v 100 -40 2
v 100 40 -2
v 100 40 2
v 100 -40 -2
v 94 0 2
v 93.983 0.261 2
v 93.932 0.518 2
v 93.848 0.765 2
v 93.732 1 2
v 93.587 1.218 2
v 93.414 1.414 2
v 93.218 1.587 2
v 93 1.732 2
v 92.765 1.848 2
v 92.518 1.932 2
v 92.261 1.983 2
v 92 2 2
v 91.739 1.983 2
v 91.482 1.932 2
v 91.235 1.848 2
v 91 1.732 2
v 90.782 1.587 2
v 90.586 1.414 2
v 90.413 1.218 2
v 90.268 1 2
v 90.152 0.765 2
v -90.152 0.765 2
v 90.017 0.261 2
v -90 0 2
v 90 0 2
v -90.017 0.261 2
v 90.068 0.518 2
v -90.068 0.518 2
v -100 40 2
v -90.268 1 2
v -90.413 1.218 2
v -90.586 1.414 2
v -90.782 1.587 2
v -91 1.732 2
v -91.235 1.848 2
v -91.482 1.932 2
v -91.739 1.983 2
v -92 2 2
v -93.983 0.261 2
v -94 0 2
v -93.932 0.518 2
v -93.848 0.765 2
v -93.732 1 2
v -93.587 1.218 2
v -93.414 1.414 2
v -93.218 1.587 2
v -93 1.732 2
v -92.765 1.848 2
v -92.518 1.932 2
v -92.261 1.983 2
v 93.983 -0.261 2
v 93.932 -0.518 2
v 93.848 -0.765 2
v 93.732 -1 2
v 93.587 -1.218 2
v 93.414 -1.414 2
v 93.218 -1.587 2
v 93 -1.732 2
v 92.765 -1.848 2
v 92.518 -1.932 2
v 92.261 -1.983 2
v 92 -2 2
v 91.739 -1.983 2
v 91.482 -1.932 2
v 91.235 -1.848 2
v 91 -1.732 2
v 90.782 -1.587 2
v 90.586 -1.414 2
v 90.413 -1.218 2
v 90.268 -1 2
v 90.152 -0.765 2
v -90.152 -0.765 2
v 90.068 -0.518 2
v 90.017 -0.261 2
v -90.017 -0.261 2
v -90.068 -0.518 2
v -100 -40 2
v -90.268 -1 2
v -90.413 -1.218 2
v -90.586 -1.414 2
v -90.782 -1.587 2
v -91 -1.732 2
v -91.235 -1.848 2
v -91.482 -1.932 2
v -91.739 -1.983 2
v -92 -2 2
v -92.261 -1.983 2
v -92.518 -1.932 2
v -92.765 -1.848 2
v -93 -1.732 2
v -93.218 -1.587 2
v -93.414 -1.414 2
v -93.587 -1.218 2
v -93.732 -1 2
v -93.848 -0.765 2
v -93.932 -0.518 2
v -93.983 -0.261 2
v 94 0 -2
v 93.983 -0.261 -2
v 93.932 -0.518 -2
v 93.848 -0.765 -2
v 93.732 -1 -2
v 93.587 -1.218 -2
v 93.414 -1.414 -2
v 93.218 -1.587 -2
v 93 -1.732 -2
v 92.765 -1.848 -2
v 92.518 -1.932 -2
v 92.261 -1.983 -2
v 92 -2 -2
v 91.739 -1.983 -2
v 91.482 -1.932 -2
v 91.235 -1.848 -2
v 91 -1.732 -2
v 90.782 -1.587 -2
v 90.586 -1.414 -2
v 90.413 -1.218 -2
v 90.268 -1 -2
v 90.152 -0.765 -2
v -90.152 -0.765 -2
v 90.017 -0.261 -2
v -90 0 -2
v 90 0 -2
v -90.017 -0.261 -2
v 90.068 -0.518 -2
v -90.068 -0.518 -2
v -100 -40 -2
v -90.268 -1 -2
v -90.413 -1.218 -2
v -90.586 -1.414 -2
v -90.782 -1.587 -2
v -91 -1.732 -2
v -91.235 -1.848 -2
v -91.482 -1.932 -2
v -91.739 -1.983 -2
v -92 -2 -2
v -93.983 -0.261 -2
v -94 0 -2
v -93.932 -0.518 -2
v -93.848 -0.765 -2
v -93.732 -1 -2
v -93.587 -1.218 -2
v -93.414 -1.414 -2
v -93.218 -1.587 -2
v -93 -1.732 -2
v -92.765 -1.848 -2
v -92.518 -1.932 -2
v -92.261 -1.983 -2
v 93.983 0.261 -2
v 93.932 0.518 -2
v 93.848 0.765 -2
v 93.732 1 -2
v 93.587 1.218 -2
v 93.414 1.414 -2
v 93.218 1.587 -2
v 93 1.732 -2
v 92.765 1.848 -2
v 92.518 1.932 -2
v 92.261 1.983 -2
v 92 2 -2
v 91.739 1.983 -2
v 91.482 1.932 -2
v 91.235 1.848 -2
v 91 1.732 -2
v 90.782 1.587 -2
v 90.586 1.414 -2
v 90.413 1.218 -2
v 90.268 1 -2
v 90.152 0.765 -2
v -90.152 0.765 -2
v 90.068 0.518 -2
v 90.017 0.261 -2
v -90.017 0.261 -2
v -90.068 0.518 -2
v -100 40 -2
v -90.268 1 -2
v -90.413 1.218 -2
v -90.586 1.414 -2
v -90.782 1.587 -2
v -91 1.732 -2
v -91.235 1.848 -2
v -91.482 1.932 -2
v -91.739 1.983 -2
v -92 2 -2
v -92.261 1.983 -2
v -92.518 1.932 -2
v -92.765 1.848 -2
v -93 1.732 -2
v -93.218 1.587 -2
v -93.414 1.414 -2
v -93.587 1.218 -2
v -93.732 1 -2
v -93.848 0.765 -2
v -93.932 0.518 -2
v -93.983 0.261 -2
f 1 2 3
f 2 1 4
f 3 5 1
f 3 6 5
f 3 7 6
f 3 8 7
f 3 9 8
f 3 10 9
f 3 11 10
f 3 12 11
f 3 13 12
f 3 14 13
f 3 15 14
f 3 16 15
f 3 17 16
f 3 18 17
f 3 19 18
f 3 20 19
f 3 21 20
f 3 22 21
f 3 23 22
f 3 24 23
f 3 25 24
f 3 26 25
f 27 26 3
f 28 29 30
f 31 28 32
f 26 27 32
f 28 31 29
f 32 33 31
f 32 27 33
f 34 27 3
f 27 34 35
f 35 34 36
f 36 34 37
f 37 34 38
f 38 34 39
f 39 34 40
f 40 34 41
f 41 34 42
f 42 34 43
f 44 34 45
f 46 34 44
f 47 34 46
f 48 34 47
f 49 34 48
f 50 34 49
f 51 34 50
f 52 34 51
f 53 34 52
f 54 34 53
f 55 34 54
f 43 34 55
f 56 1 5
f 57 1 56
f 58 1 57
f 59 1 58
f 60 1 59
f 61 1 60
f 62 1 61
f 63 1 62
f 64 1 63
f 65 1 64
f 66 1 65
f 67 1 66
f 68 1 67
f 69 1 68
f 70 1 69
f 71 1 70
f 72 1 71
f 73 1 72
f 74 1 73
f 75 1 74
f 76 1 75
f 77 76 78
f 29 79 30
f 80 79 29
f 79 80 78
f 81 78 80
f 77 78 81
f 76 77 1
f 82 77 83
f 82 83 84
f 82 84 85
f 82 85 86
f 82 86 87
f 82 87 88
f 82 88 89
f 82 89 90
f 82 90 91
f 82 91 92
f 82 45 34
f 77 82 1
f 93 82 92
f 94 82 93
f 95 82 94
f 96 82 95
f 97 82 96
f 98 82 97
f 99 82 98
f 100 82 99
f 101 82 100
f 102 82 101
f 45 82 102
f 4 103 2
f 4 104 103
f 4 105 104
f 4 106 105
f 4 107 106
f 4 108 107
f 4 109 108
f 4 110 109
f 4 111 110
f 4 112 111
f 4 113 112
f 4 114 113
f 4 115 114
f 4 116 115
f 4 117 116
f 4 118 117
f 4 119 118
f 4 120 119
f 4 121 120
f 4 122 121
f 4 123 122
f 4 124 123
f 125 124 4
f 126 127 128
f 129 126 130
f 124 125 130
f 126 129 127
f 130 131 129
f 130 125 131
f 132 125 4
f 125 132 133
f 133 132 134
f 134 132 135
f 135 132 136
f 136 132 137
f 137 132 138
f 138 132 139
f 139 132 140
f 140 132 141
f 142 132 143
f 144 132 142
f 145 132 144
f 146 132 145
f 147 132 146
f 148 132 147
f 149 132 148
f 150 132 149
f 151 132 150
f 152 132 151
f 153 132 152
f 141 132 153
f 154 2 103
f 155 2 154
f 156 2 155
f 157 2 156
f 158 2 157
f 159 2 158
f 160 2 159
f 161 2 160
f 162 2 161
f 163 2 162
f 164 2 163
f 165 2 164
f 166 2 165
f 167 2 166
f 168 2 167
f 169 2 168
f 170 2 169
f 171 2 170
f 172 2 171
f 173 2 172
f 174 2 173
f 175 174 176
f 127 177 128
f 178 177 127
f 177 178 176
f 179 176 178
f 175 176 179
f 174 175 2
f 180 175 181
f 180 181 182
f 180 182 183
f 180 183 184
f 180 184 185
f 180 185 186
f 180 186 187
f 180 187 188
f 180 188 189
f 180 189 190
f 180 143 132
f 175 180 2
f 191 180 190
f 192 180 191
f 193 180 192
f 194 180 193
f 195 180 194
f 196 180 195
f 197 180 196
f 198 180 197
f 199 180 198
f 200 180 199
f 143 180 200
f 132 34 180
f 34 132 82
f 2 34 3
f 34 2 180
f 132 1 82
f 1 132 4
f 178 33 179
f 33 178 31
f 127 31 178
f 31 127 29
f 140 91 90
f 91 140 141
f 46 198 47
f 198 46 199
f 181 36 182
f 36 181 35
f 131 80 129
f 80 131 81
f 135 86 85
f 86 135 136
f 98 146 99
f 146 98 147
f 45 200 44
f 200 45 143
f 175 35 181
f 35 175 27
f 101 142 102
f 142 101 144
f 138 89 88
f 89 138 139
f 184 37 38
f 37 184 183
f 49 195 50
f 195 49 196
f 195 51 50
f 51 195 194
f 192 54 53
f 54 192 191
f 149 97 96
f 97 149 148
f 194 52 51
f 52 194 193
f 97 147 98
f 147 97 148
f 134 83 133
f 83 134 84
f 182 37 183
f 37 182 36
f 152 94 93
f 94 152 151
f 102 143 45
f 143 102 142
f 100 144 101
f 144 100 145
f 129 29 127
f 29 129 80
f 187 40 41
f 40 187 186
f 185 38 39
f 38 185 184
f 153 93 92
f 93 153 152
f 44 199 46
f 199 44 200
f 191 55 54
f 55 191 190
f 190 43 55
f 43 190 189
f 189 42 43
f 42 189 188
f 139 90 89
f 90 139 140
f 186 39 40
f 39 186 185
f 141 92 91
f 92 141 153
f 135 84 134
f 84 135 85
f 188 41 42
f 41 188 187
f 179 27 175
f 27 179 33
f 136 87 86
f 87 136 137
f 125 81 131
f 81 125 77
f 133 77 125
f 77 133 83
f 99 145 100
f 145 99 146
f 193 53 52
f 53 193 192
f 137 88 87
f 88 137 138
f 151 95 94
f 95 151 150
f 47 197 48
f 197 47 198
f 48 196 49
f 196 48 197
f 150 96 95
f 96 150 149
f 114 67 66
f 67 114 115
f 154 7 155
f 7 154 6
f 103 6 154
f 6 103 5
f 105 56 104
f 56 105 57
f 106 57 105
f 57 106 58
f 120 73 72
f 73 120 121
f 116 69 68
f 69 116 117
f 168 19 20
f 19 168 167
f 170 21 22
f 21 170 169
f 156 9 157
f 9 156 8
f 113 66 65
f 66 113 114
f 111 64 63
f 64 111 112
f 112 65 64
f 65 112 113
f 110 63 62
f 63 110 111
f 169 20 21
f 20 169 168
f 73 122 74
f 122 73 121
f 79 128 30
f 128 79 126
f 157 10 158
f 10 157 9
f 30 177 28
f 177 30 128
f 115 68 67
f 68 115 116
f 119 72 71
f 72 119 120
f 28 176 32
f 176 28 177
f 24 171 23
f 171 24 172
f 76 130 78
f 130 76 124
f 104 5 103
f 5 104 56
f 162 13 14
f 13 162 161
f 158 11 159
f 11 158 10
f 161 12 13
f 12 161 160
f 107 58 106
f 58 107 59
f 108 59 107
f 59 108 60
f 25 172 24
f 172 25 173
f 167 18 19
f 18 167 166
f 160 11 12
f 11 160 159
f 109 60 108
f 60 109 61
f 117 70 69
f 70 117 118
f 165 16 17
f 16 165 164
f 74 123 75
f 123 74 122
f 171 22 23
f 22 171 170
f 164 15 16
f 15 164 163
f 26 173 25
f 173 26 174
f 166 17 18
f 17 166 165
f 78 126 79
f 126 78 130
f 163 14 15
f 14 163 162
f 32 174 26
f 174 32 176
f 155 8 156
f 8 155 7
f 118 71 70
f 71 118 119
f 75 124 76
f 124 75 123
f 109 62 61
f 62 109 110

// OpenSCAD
// ========================================
// a 200 x 80 x 4 mm plate with two 4 mm holes
// NeuroCAD canonical IR; dimensions are millimetres
// ========================================
$fn = 48;

difference() {
  cube(size=[200, 80, 4], center=true);
  translate([-92, 0, 0]) {
    cylinder(r=2, h=6, center=true);
  }
  translate([92, 0, 0]) {
    cylinder(r=2, h=6, center=true);
  }
}
